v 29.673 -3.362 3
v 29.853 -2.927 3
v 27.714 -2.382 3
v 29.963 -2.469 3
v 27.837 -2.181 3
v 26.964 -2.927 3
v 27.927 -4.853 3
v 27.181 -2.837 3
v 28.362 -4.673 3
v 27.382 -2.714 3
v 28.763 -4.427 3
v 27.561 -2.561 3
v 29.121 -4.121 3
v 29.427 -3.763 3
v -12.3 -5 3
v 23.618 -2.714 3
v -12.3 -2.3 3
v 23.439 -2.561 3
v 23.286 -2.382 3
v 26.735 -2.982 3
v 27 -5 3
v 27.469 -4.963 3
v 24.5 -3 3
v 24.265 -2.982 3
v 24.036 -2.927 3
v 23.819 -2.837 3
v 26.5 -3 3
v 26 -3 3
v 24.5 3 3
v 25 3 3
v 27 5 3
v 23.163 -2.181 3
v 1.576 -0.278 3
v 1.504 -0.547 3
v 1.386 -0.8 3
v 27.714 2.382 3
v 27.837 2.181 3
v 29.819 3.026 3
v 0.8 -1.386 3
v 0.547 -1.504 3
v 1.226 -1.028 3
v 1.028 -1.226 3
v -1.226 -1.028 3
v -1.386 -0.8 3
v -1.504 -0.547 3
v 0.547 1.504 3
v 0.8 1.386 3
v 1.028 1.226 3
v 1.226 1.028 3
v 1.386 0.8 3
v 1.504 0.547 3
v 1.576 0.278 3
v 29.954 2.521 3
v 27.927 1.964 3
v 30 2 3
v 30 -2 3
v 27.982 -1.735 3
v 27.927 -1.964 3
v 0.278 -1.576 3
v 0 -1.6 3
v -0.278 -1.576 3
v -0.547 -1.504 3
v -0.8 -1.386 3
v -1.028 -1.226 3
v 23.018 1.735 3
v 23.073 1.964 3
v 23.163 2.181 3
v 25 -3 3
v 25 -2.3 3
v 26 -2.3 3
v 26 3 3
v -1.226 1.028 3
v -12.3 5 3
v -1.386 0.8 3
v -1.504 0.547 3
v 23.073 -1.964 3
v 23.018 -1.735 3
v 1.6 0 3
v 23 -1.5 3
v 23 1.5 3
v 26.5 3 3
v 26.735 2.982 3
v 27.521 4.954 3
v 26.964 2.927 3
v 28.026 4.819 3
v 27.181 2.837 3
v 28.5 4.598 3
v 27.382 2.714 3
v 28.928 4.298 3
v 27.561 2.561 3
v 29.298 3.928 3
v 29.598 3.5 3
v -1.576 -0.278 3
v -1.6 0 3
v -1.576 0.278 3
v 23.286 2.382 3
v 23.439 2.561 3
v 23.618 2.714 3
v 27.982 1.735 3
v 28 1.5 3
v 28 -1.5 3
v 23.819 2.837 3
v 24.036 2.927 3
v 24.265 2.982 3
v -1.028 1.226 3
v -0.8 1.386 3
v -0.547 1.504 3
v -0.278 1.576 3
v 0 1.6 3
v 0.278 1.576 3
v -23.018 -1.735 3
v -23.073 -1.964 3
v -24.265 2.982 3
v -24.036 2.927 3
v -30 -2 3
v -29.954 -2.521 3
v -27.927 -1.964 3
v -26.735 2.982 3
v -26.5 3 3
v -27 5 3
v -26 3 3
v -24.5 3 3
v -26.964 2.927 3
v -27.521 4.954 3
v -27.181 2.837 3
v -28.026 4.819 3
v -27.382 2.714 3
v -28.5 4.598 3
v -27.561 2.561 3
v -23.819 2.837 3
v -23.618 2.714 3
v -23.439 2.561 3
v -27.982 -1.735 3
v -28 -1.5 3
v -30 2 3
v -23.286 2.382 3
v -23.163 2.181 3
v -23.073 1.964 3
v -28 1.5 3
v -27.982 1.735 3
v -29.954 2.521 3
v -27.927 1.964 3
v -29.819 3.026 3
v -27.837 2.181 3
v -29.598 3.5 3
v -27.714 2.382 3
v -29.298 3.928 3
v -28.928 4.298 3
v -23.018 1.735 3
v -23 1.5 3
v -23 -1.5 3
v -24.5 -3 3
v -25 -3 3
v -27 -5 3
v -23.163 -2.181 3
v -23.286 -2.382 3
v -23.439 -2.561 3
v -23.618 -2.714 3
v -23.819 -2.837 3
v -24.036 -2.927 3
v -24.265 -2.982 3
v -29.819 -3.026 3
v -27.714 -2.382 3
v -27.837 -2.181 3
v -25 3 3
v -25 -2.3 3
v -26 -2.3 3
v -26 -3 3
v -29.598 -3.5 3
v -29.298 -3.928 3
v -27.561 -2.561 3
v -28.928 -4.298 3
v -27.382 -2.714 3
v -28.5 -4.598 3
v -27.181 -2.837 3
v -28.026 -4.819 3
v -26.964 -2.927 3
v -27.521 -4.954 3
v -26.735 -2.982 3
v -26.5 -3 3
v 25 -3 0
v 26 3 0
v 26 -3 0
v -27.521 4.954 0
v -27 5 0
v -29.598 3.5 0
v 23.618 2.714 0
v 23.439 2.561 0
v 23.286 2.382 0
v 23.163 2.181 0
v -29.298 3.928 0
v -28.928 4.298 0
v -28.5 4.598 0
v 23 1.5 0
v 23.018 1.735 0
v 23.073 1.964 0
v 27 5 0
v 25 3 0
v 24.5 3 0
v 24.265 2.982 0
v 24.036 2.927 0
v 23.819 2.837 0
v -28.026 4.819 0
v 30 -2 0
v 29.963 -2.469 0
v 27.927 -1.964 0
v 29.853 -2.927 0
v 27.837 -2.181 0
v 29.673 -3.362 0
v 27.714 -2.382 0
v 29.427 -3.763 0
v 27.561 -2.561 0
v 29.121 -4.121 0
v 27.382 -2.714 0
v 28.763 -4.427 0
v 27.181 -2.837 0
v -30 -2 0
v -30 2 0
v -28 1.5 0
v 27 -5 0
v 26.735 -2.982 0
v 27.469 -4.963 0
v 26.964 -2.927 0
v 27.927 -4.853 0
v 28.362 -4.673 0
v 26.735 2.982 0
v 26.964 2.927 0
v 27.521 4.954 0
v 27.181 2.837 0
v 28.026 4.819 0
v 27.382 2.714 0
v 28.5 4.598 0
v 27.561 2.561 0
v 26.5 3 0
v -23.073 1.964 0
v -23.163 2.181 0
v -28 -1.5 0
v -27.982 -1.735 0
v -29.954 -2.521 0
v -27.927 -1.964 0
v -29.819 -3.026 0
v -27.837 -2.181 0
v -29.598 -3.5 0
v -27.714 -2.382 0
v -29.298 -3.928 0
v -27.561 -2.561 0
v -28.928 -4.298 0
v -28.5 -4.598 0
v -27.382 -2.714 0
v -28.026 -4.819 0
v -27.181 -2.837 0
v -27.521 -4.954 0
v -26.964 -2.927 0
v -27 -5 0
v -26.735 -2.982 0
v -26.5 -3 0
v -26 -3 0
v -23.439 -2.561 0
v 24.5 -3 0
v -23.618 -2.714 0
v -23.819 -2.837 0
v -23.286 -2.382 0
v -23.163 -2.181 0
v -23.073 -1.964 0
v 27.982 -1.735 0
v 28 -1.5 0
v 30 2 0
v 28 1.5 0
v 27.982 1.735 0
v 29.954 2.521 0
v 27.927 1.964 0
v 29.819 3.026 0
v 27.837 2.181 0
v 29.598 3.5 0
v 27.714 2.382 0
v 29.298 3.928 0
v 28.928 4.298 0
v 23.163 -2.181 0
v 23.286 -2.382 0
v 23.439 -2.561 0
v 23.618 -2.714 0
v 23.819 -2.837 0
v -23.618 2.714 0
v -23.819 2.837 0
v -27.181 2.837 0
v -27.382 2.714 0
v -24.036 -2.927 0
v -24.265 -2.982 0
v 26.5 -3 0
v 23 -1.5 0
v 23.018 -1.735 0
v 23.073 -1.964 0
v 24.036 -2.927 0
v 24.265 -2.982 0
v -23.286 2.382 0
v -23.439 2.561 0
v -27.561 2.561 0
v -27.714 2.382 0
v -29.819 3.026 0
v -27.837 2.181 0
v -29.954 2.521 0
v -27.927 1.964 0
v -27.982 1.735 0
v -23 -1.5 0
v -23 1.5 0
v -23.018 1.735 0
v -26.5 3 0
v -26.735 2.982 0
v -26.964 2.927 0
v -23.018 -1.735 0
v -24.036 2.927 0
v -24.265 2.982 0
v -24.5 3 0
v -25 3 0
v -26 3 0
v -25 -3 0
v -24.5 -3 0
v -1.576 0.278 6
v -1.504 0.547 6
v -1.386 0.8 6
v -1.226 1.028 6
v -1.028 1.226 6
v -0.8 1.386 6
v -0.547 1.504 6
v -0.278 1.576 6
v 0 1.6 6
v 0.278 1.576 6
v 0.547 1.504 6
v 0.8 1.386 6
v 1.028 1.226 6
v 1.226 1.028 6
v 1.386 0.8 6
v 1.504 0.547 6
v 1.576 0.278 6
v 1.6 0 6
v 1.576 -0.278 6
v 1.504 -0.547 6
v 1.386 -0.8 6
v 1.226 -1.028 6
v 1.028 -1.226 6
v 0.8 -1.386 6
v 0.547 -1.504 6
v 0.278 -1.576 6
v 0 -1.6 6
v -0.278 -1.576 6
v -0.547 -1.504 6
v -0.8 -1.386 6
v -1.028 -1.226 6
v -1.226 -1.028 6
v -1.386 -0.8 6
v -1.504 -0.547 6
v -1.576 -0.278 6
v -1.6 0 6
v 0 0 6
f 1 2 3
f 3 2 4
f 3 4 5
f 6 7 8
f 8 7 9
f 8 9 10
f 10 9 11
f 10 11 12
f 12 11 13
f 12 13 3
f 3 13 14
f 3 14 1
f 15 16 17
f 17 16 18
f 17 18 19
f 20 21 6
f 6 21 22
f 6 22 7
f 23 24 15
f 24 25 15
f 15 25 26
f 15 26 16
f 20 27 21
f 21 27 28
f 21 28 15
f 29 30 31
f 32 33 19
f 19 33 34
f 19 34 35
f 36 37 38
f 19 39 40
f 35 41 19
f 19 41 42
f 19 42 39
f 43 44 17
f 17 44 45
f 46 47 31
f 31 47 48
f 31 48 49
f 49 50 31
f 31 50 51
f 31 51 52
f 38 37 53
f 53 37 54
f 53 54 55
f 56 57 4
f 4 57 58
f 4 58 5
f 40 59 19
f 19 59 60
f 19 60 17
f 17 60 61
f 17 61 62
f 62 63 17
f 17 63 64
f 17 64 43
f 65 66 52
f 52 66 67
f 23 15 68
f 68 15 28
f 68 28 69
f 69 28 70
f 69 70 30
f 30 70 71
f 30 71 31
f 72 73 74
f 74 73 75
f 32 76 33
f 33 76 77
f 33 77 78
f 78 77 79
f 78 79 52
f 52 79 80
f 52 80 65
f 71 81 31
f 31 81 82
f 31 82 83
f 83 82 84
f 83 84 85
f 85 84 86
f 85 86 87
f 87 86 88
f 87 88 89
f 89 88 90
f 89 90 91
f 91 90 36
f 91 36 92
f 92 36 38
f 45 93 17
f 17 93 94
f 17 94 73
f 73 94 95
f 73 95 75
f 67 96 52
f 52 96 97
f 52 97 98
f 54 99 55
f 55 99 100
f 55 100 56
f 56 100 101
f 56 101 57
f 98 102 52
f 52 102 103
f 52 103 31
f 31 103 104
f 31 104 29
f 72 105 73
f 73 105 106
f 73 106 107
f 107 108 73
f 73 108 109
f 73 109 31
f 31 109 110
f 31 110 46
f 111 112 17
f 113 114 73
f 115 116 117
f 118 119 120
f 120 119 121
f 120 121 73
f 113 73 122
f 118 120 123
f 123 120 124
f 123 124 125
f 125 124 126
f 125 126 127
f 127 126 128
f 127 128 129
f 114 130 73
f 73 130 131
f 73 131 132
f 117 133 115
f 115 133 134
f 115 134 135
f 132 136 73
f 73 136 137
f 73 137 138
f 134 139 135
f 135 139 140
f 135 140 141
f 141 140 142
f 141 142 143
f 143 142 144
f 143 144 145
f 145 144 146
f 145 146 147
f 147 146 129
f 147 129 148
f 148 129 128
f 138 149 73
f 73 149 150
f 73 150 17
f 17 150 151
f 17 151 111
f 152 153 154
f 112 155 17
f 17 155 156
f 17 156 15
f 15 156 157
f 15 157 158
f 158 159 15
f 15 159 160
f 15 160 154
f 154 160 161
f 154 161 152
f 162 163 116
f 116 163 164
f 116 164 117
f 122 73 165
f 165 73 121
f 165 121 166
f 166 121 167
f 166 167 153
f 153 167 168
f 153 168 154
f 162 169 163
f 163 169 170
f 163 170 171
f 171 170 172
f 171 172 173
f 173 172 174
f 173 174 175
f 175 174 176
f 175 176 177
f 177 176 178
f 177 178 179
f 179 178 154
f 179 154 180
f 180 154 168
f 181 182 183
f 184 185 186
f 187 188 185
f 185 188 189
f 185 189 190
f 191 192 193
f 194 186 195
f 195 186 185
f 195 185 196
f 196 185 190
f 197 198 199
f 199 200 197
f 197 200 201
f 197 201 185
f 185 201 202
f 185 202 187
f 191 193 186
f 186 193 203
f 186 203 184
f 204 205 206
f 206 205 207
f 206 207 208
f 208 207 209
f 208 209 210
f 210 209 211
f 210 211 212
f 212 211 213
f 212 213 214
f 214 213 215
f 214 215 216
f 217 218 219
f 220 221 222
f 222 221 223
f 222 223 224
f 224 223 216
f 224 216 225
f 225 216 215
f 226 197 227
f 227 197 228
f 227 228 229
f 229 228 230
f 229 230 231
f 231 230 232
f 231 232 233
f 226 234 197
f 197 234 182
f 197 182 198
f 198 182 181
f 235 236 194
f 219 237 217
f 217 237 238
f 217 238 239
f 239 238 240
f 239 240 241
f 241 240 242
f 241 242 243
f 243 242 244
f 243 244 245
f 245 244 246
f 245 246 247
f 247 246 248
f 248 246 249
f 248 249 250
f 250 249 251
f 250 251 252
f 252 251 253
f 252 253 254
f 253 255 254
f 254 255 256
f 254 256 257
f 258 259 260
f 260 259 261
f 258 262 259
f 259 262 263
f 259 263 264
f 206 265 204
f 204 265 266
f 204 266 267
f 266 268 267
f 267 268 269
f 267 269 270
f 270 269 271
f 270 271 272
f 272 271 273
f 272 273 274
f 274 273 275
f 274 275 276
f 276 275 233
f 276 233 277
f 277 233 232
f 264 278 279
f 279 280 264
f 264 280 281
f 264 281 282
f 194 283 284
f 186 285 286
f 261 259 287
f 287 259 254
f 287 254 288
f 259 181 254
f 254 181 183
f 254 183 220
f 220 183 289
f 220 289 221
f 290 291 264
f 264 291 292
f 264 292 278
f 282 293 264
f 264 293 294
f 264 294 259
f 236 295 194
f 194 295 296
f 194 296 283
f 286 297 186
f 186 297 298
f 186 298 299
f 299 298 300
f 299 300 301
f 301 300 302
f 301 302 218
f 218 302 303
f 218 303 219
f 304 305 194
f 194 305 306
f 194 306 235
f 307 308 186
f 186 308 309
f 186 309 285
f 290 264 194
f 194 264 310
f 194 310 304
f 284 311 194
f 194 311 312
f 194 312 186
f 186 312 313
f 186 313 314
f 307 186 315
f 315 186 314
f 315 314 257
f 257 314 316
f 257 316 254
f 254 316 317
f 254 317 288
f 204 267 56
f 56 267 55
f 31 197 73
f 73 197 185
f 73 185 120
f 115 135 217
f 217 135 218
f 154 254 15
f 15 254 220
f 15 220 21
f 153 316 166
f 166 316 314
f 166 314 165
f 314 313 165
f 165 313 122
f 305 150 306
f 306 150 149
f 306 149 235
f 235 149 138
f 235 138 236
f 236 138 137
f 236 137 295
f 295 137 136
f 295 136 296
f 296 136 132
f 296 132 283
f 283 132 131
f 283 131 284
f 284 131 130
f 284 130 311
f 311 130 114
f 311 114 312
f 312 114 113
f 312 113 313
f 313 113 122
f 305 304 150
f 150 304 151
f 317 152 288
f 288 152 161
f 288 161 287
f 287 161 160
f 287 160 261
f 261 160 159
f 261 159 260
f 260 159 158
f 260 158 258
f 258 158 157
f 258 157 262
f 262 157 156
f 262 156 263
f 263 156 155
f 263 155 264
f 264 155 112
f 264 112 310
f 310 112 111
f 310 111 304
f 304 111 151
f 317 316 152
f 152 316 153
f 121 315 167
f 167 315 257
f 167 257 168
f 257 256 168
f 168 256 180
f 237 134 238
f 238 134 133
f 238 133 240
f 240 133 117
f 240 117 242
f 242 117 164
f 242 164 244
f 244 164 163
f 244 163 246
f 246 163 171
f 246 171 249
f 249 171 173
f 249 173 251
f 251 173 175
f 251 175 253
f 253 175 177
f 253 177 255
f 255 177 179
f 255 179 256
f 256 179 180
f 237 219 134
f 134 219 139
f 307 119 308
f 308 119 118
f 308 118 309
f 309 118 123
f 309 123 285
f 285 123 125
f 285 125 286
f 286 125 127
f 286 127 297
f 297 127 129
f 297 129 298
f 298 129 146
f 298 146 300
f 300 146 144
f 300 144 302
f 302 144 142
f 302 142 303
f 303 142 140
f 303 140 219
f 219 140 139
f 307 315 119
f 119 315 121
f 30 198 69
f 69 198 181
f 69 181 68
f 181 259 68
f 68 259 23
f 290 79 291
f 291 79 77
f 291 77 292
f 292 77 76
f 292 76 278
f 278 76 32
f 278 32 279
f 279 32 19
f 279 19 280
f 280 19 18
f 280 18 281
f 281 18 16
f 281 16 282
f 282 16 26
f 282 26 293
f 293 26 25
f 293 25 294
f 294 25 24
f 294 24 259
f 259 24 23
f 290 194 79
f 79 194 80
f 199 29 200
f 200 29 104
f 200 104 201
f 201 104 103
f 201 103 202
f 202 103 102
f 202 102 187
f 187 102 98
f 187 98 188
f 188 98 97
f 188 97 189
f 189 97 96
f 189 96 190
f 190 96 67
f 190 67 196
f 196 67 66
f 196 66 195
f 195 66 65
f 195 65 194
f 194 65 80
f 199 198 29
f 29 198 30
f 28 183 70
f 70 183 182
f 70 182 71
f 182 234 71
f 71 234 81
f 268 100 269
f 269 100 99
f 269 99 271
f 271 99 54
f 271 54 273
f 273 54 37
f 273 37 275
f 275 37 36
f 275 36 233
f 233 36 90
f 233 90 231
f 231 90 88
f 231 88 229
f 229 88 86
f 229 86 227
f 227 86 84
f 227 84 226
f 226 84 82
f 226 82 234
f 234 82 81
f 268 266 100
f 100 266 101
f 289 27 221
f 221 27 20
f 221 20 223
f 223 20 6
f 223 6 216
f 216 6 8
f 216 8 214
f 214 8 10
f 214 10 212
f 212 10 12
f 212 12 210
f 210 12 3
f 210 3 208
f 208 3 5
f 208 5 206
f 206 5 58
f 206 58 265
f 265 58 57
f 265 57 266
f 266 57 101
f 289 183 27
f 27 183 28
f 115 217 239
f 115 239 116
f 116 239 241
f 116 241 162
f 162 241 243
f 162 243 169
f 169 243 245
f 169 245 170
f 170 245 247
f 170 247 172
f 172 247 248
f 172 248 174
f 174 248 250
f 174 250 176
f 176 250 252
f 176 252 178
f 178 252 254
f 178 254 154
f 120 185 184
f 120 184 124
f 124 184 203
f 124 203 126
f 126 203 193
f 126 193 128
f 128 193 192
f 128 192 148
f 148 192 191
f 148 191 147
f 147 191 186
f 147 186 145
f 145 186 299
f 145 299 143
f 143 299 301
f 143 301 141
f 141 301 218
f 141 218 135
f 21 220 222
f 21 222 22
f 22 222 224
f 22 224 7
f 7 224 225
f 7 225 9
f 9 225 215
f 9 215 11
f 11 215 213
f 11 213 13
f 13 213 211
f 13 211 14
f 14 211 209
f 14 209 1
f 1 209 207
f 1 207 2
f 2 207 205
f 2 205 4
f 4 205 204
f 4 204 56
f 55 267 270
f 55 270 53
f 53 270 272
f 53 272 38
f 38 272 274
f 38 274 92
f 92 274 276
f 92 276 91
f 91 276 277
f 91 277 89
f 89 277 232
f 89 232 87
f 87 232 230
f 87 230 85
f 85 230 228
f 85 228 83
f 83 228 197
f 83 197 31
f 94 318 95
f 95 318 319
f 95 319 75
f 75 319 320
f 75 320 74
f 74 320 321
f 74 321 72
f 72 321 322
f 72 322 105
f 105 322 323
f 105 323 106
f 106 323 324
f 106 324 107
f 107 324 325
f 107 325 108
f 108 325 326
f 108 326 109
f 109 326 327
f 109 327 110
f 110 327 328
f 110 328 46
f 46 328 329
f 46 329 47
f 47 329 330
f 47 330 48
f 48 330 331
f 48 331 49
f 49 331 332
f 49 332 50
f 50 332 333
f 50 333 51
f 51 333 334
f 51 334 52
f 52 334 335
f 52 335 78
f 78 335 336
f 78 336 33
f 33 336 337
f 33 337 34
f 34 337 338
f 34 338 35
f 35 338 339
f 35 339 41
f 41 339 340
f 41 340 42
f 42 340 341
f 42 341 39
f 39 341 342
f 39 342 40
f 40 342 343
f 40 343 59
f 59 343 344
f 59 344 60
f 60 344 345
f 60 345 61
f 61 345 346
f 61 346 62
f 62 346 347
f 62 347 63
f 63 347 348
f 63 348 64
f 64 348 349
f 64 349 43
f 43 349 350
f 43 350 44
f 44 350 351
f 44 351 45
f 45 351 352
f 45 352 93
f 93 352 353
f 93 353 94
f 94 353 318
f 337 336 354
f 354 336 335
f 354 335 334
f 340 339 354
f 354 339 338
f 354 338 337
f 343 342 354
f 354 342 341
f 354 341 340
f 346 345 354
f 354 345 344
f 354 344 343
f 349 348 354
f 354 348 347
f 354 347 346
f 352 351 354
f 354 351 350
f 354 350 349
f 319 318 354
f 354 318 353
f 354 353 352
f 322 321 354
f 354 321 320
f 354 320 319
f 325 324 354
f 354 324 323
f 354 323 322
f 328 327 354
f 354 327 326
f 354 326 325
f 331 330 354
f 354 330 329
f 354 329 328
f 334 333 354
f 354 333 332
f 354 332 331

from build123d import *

# Parameters (mm, degrees)
SKETCH1_W           = 60
SKETCH1_H           = 10
BOSS_EXTRUDE1_DEPTH = 3
CUT_EXTRUDE2_DEPTH  = 3
FILLET1_R           = 3
SKETCH2_R           = 1.6
BOSS_EXTRUDE2_DEPTH = 3


with BuildPart() as part:
    # Sketch1 → Boss-Extrude1 (new body)
    with BuildSketch(Plane.XY):
        Rectangle(SKETCH1_W, SKETCH1_H)
    extrude(amount=BOSS_EXTRUDE1_DEPTH)

    # Sketch3 → Cut-Extrude2 (cut)
    with BuildSketch(Plane.XY.offset(3)):
        with BuildLine():
            Line((-26.5, 3), (-26, 3))
            Line((-26, 3), (-26, -3))
            Line((-26, -3), (-26.5, -3))
            ThreePointArc((-26.5, -3), (-27.560660172, -2.560660172), (-28, -1.5))
            Line((-28, -1.5), (-28, 1.5))
            ThreePointArc((-28, 1.5), (-27.560660172, 2.560660172), (-26.5, 3))
        make_face()
        with BuildLine():
            Line((-25, 3), (-24.5, 3))
            ThreePointArc((-24.5, 3), (-23.439339828, 2.560660172), (-23, 1.5))
            Line((-23, 1.5), (-23, -1.5))
            ThreePointArc((-23, -1.5), (-23.439339828, -2.560660172), (-24.5, -3))
            Line((-24.5, -3), (-25, -3))
            Line((-25, -3), (-25, 3))
        make_face()
    cut_extrude2 = extrude(amount=-CUT_EXTRUDE2_DEPTH, mode=Mode.SUBTRACT)

    # Mirror1: Cut-Extrude2 across plane
    add(cut_extrude2.mirror(Plane(origin=(0, 0, 0), x_dir=(0, 0, 1), z_dir=(1, 0, 0))), mode=Mode.SUBTRACT)

    # Fillet1
    fillet1_edges = [part.edges().sort_by_distance(p)[0] for p in [
        (30, -5, 1.5),
        (-30, -5, 1.5),
        (-30, 5, 1.5),
        (30, 5, 1.5),
    ]]
    fillet(fillet1_edges, radius=FILLET1_R)

    # Sketch2 → Boss-Extrude2 (add)
    with BuildSketch(Plane.XY.offset(3)):
        Circle(SKETCH2_R)
    extrude(amount=BOSS_EXTRUDE2_DEPTH)


solid = part.part
